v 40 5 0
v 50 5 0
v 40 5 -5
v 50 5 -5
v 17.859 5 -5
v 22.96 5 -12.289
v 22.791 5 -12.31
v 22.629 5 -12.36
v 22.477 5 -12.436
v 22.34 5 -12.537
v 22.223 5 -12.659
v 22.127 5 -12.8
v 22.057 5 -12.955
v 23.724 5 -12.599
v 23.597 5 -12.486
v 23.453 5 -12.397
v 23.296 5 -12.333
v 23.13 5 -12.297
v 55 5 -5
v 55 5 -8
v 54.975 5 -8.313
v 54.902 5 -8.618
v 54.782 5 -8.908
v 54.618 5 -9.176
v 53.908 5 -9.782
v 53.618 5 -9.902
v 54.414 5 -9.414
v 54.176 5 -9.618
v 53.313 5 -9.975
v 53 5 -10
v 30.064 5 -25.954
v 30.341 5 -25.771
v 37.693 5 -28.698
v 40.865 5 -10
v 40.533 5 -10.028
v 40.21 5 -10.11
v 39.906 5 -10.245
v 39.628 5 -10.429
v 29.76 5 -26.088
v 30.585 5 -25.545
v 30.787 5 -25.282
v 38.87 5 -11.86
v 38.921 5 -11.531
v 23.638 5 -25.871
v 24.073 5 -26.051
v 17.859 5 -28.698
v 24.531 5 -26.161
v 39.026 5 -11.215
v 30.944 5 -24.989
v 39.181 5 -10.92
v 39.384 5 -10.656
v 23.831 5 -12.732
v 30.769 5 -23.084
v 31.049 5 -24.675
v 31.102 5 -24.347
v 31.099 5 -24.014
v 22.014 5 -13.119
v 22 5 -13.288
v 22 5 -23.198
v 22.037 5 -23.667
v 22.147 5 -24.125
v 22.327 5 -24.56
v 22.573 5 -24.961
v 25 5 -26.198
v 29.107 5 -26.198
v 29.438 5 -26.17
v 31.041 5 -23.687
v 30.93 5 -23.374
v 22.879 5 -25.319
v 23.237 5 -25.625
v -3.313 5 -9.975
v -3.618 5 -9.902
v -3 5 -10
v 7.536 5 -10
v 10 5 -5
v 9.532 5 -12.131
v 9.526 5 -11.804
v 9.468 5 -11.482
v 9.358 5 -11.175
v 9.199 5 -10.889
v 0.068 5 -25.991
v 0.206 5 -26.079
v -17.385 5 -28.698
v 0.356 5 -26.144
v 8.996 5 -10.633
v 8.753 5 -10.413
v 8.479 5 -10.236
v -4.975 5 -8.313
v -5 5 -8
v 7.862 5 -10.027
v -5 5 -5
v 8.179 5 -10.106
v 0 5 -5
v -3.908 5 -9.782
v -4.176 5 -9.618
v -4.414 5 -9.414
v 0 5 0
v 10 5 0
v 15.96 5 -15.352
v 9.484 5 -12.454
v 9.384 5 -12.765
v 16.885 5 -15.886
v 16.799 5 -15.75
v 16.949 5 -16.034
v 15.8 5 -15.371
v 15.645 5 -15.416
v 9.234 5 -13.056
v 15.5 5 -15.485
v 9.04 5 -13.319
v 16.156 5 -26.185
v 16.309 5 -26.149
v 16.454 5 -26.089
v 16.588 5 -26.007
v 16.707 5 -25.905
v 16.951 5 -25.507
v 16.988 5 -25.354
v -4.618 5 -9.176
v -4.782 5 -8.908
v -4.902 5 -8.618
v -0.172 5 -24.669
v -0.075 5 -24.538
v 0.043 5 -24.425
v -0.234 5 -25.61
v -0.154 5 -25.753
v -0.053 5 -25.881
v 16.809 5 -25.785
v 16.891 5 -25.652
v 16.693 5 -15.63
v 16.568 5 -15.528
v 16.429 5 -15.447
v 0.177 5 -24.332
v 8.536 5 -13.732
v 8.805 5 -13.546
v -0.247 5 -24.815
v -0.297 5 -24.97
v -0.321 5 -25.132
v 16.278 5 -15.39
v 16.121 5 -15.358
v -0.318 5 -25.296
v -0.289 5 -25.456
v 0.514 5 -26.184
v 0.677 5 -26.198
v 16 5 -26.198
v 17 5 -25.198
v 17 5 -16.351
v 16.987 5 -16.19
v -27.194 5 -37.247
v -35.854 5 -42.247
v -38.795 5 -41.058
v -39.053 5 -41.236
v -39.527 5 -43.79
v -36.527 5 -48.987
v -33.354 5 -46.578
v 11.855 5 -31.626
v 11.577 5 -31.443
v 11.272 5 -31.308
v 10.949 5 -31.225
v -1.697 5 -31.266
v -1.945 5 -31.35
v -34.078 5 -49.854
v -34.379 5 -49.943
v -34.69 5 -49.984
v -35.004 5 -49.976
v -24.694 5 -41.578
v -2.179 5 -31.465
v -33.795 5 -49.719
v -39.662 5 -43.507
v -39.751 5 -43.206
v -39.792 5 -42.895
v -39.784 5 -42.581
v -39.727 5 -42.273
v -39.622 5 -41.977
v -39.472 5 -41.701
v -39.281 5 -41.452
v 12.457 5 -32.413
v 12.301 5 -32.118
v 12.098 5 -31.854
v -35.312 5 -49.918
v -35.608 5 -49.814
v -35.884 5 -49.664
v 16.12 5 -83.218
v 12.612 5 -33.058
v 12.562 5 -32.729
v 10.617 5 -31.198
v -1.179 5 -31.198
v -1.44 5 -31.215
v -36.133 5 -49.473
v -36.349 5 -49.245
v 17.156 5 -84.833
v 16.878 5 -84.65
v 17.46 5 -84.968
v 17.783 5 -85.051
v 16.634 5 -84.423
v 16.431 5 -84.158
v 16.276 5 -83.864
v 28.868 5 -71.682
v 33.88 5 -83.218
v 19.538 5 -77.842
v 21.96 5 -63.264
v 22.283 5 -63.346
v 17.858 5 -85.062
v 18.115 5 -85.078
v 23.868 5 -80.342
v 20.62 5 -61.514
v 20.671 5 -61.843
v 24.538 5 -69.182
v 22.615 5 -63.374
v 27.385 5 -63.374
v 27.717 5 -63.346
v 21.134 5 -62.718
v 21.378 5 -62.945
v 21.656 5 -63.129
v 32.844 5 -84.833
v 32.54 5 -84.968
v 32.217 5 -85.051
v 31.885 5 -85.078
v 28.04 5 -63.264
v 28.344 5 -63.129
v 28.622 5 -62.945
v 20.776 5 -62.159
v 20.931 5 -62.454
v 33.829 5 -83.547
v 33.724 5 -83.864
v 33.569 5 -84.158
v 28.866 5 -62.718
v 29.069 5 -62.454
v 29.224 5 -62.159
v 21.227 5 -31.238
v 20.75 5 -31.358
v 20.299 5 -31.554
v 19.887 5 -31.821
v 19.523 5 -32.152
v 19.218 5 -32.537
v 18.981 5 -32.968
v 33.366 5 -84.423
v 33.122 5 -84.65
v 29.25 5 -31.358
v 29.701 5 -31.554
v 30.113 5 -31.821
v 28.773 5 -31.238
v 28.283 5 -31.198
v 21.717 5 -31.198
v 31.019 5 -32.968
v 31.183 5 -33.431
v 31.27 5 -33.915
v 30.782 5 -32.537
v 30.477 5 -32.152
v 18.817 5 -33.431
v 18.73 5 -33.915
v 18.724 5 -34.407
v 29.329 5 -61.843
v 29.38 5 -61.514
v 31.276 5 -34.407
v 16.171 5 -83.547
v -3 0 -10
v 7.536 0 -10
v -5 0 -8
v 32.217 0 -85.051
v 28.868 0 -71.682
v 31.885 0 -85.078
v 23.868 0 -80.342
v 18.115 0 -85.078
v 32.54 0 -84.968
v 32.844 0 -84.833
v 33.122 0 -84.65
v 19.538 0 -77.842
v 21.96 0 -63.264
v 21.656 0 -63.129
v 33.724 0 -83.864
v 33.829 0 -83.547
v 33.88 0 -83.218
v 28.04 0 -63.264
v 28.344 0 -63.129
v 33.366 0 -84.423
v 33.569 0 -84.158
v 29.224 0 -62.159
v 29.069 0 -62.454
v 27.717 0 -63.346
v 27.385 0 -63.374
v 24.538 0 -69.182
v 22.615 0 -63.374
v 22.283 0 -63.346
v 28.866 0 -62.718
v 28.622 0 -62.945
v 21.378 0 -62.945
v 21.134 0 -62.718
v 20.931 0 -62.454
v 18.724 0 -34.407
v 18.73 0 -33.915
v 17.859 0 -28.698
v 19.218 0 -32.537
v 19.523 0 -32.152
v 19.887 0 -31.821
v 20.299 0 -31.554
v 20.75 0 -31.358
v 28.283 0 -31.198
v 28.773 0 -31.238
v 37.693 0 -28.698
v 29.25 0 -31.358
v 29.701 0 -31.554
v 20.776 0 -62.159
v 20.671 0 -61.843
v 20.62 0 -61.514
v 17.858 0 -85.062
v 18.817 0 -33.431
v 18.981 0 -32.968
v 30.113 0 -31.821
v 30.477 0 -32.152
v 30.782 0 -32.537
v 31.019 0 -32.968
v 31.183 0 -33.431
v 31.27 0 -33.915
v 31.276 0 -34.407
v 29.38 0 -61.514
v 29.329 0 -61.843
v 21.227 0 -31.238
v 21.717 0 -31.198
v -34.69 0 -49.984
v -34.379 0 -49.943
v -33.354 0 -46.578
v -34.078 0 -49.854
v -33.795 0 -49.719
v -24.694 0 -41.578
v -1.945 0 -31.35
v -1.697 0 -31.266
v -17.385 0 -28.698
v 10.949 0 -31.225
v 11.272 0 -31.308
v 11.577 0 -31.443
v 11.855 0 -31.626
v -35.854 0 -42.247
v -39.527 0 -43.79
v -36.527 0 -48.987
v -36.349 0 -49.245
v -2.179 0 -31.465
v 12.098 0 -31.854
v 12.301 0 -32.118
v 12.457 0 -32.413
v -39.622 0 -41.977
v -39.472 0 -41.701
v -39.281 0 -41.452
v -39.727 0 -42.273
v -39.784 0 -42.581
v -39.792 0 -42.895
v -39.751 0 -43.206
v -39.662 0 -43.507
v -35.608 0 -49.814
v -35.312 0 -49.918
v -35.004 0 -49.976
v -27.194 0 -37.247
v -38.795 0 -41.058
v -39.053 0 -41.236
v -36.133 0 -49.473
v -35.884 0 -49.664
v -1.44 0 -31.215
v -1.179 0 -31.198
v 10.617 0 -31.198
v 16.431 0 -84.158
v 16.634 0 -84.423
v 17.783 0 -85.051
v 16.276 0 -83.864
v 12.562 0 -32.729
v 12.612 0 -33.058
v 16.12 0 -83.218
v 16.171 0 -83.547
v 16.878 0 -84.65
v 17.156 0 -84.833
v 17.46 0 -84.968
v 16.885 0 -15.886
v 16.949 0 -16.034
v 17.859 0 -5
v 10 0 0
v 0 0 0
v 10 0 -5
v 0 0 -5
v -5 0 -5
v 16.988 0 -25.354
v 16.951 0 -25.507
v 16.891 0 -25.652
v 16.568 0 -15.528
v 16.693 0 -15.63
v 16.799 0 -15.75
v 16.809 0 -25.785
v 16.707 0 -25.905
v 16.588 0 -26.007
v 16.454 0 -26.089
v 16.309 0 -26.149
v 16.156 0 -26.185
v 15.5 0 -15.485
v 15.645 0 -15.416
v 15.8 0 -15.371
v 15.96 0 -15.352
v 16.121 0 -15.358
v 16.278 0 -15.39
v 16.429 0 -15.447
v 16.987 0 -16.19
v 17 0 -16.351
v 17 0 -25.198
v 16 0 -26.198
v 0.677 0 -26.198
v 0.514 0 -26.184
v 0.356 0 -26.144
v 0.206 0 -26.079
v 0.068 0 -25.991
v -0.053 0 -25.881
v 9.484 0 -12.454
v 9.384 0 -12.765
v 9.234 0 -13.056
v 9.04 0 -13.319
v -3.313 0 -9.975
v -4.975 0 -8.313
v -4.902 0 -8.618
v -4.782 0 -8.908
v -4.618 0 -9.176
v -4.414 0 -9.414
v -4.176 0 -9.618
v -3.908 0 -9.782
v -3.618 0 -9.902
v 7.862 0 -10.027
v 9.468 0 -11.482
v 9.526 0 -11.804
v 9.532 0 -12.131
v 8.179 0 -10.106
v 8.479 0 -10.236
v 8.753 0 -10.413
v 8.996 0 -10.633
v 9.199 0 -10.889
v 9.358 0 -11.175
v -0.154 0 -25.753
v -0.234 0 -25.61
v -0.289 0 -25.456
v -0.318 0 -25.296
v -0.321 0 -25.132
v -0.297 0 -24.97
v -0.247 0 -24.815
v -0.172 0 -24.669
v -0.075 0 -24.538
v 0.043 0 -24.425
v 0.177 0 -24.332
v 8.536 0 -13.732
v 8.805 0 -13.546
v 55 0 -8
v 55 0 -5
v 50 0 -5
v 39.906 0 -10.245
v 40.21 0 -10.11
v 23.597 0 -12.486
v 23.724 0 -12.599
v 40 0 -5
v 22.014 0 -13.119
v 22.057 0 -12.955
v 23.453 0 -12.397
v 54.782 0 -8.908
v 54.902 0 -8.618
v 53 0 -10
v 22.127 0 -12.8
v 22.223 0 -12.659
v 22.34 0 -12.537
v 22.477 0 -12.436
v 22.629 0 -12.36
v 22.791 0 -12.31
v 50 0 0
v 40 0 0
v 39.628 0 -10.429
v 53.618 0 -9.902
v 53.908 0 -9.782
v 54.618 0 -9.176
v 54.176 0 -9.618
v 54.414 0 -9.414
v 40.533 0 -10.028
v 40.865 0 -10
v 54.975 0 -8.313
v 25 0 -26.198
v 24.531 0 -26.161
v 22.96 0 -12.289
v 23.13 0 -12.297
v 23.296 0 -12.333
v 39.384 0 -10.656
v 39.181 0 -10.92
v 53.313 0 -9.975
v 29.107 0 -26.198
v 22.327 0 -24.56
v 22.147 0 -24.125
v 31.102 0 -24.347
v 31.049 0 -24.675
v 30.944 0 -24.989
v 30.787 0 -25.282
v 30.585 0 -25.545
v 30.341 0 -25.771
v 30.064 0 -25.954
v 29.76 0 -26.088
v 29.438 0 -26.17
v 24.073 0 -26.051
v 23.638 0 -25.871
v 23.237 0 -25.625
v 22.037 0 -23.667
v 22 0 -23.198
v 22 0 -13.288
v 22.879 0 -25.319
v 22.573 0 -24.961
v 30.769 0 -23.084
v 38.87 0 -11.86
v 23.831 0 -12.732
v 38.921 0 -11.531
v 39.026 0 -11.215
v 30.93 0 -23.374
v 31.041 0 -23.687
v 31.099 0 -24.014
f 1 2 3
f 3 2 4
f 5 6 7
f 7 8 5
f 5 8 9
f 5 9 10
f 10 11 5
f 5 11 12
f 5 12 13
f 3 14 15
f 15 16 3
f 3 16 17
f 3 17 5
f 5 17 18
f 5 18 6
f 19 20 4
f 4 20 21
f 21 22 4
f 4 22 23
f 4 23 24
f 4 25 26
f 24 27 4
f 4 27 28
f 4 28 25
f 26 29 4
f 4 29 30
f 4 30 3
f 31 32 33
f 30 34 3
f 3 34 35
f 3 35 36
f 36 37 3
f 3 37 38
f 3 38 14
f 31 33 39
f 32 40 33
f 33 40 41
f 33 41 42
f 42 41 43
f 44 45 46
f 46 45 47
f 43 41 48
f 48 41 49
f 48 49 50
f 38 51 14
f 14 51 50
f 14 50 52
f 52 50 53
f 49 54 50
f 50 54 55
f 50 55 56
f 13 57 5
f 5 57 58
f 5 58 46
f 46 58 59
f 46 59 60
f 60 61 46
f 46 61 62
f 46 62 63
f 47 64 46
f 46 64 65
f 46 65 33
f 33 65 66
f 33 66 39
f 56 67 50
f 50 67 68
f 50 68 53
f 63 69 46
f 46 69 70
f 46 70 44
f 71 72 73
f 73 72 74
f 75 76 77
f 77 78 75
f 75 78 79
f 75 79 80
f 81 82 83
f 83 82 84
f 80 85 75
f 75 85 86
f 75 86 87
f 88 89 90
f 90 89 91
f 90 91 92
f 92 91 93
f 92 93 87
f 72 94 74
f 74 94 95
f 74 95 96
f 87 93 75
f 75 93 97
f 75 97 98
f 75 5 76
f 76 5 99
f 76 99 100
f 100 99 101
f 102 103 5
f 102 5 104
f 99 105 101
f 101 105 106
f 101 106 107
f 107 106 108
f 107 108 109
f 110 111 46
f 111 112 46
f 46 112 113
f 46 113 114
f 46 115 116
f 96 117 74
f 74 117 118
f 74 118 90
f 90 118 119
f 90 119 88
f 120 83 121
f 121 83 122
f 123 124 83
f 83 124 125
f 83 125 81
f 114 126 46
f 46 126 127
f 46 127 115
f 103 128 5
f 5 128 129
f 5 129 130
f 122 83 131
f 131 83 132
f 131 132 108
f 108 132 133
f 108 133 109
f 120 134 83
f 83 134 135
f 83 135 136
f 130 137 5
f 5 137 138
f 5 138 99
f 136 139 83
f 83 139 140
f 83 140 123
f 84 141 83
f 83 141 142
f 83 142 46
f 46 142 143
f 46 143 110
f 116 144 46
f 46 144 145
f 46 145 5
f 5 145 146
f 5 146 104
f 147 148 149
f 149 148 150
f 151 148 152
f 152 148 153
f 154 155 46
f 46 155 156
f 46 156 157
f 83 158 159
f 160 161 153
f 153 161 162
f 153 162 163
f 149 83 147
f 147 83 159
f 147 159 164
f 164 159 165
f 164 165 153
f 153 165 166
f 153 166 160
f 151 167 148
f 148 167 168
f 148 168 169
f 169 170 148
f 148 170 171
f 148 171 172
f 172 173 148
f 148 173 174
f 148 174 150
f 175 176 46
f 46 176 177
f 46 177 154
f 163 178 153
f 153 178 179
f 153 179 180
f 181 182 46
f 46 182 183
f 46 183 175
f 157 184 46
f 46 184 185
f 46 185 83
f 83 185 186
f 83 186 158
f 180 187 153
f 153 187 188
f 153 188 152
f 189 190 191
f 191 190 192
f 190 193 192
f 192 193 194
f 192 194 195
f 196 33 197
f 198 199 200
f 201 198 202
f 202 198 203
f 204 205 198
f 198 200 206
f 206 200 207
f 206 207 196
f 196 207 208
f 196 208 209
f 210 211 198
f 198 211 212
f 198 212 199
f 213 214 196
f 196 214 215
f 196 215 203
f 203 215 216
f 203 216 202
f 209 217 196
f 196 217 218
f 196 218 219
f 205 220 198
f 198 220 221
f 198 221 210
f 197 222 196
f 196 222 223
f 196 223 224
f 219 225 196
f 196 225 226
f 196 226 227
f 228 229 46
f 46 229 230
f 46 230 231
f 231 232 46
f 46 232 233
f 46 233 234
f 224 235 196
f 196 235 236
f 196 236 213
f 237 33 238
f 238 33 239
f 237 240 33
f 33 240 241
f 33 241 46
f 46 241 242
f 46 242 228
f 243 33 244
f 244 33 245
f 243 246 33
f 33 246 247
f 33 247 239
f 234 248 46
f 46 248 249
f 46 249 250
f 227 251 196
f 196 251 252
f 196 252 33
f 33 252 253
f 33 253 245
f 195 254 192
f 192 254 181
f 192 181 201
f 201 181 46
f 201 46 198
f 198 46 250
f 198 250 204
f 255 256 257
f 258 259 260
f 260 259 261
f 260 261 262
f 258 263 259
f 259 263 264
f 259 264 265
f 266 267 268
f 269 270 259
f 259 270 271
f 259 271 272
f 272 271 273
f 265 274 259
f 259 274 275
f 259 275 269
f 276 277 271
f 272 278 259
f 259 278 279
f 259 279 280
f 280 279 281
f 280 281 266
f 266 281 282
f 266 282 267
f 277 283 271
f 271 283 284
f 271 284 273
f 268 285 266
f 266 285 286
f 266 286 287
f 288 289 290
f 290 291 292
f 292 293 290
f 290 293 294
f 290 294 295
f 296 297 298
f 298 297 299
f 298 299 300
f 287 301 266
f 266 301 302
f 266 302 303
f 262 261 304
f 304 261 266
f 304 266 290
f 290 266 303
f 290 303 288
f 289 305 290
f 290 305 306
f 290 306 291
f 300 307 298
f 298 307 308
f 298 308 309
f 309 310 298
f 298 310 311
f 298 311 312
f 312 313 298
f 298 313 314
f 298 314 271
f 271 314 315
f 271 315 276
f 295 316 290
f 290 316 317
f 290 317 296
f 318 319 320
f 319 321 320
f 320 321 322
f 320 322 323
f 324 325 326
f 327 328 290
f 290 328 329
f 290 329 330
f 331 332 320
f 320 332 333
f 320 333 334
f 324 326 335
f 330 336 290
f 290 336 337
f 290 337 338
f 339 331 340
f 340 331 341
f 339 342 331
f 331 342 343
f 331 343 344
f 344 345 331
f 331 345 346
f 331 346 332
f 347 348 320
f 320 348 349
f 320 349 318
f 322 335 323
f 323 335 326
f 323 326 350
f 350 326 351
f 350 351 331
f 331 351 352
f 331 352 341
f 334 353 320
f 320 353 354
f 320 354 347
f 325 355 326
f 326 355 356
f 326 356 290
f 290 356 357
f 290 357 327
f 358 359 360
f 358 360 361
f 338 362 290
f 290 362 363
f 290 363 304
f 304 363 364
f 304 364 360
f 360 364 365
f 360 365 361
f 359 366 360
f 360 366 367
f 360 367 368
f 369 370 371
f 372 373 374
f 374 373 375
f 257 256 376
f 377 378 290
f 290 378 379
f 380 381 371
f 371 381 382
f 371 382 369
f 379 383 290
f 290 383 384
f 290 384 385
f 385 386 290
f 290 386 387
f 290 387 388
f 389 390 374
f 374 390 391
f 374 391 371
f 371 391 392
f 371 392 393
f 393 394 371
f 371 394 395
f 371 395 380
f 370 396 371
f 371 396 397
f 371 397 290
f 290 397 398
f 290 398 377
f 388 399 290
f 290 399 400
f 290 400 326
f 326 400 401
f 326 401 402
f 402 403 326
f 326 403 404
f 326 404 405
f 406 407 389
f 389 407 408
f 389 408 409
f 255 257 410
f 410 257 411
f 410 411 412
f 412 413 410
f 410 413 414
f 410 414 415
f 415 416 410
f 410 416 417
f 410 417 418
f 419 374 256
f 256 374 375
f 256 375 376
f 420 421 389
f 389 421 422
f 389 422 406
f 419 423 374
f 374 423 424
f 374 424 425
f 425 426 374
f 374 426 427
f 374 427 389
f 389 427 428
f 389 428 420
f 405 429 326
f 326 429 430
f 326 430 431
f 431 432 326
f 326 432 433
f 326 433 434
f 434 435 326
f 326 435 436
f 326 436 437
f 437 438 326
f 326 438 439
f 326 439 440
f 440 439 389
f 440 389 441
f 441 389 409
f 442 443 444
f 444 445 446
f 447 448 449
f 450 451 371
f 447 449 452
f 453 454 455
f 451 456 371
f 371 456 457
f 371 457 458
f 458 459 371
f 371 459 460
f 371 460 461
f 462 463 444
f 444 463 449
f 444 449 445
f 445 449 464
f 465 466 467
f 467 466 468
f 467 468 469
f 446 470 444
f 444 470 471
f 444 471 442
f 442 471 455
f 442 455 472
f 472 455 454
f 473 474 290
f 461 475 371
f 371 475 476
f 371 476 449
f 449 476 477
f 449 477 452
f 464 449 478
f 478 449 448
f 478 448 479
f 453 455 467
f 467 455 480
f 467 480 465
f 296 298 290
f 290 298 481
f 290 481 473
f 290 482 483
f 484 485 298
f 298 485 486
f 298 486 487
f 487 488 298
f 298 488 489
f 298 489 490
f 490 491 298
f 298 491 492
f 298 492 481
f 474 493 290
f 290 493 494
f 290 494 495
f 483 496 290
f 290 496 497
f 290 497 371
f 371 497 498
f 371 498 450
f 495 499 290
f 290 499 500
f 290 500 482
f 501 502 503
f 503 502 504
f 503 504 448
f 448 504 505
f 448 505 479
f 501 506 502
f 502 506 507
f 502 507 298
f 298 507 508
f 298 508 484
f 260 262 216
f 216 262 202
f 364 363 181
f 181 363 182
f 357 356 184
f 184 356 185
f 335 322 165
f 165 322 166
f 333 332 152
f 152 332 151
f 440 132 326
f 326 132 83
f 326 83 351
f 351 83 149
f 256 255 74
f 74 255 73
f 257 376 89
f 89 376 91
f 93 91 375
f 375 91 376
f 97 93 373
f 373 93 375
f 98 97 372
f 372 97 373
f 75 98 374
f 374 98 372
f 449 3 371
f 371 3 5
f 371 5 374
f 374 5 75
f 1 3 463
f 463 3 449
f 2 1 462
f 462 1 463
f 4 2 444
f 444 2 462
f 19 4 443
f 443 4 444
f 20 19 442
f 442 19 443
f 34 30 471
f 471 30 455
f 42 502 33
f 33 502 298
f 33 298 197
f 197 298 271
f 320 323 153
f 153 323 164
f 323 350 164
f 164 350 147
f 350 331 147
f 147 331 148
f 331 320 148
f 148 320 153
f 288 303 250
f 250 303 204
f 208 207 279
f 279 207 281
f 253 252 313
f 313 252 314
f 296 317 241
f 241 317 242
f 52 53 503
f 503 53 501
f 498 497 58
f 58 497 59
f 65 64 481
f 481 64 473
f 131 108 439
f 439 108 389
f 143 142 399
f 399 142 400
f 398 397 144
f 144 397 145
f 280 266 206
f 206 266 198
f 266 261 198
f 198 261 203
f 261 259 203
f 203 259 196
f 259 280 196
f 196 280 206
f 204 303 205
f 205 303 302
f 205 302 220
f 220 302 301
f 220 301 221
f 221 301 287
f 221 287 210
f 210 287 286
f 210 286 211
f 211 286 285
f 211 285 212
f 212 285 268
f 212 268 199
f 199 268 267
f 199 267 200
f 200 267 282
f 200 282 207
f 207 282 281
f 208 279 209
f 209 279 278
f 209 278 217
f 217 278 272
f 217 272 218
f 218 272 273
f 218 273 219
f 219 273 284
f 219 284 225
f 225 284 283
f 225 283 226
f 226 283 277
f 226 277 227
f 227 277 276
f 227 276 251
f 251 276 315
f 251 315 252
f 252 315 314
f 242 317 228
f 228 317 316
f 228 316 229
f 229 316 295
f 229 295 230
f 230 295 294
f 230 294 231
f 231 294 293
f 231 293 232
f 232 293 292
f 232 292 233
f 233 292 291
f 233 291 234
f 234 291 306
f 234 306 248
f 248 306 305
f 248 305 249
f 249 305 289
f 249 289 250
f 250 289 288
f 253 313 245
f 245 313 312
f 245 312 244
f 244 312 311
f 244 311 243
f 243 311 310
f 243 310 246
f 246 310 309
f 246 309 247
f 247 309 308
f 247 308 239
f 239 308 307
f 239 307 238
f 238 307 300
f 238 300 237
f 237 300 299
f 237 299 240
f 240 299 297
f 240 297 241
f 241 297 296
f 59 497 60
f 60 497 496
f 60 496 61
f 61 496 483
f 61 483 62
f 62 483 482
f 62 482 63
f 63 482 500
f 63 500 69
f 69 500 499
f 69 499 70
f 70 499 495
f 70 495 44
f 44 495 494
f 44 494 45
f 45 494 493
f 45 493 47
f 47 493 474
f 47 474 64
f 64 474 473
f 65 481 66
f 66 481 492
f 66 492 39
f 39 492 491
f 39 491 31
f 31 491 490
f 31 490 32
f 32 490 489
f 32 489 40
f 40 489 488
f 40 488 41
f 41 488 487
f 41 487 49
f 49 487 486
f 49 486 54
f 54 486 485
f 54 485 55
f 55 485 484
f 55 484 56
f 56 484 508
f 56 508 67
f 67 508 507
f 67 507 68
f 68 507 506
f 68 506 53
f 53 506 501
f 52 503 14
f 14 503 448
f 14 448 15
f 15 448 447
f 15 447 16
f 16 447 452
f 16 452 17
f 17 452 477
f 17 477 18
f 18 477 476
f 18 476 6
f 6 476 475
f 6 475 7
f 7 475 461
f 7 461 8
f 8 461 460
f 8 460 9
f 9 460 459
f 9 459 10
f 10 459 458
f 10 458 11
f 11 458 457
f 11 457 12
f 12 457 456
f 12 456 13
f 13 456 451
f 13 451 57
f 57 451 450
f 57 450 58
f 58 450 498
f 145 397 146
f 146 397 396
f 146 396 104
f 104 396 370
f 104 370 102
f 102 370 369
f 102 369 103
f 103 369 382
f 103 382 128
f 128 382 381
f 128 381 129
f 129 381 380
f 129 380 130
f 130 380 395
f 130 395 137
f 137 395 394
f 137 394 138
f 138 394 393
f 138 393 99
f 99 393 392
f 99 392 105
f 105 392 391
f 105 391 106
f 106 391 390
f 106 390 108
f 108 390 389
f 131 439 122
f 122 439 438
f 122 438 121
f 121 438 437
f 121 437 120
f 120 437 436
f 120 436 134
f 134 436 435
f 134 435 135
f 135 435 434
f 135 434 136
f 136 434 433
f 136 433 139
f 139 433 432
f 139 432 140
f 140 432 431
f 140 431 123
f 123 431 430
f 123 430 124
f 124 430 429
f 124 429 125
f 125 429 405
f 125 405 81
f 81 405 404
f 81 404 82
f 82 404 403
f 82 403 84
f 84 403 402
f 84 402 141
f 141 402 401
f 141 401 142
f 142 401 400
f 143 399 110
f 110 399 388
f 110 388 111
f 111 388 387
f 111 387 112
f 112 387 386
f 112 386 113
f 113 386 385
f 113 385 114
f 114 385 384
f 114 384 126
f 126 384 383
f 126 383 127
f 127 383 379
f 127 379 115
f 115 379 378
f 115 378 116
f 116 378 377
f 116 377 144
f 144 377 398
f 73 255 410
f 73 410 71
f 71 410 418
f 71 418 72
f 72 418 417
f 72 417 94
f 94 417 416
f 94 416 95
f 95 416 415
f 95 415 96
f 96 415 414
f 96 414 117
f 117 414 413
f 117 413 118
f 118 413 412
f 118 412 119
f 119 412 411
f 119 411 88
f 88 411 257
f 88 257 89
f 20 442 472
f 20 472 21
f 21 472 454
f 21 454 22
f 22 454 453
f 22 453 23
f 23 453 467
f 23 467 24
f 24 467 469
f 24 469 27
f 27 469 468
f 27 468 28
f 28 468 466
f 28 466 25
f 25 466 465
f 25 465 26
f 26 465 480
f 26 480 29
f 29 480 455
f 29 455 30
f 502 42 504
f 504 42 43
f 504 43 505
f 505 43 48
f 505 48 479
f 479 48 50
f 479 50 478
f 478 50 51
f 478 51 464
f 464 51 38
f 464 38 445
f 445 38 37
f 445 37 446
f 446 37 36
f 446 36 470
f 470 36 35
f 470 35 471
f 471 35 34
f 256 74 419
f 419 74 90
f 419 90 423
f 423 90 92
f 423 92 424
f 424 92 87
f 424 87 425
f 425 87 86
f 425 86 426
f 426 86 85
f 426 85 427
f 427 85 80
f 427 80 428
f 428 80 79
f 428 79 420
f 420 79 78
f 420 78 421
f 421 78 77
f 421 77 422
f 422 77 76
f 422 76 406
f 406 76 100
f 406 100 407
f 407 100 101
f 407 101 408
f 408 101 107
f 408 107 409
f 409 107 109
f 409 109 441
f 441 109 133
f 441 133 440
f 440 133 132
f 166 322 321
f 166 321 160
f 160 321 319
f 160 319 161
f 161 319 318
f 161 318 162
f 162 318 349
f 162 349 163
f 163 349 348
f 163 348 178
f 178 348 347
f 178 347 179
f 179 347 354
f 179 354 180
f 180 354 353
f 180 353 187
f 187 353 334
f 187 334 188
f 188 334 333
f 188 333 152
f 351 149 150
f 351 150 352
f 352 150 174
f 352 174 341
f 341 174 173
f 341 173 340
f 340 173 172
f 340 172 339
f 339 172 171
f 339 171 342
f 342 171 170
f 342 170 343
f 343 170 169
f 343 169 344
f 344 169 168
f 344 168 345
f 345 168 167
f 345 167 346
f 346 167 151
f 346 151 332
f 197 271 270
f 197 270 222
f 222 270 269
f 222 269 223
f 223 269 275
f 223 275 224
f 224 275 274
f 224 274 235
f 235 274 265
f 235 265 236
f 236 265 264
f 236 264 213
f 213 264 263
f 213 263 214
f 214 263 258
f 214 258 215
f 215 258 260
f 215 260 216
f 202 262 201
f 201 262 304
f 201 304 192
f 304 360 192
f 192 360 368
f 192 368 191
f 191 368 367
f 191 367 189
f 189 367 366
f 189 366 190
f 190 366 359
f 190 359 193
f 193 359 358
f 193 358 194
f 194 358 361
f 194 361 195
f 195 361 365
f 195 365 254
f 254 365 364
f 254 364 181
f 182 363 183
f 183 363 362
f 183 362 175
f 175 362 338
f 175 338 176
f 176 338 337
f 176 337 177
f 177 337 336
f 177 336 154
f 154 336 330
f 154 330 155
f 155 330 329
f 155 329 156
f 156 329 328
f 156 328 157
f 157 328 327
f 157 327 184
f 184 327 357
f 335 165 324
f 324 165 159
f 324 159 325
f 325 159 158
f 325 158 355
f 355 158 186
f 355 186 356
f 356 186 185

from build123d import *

# Parameters (mm, degrees)
EXTRUDE_1_DEPTH     = 5
CUT_EXTRUDE_1_DEPTH = 6
FILLET_1_R          = 2
FILLET_2_R          = 2
FILLET_3_R          = 3
FILLET_4_R          = 3
FILLET_5_R          = 3
FILLET_6_R          = 2
FILLET_7_R          = 1
FILLET_8_R          = 1
FILLET_9_R          = 1
FILLET_10_R         = 1
FILLET_11_R         = 2
FILLET_12_R         = 2
FILLET_13_R         = 2
FILLET_14_R         = 2
FILLET_15_R         = 2
FILLET_16_R         = 2


with BuildPart() as part:
    # 草图1 → 凸台-拉伸1 (new body)
    with BuildSketch(Plane(origin=(0, 0, 0), x_dir=(1, 0, 0), z_dir=(0, 1, 0))):
        Polygon((-5, 5), (0, 5), (0, 0), (10, 0), (10, 5), (40, 5), (40, 0), (50, 0), (50, 5), (55, 5), (55, 10), (39, 10), (33.75, 85.078497848), (16.25, 85.078497848), (12.482276941, 31.197547838), (-1.715229851, 31.197547838), (-35.526844906, 50.718692892), (-40.526844906, 42.058438854), (15, 10), (-5, 10), align=None)
    extrude(amount=EXTRUDE_1_DEPTH)

    # 草图2 → 切除-拉伸1 (cut, through all)
    with BuildSketch(Plane(origin=(0, 5, 0), x_dir=(1, 0, 0), z_dir=(0, 1, 0))):
        Polygon((-35.854277493, 42.247482146), (-27.194023456, 37.247482146), (-24.694023456, 41.577609165), (-33.354277493, 46.577609165), align=None)
        Polygon((28.868403571, 71.682200114), (23.868403571, 80.342454152), (19.538276552, 77.842454152), (24.538276552, 69.182200114), align=None)
        Polygon((-3.054975814, 26.197547838), (17, 26.197547838), (17, 14.618802154), align=None)
        Polygon((20.75, 63.374046916), (29.25, 63.374046916), (31.5, 31.197547838), (18.5, 31.197547838), align=None)
        Polygon((22, 26.197547838), (22, 10), (32.855147628, 26.197547838), align=None)
    extrude(amount=-CUT_EXTRUDE_1_DEPTH, mode=Mode.SUBTRACT)

    # 圆角1
    fillet_1_edges = [part.edges().sort_by_distance(p)[0] for p in [
        (20.75, 2.5, -63.374046916),
    ]]
    fillet(fillet_1_edges, radius=FILLET_1_R)

    # 圆角2
    fillet_2_edges = [part.edges().sort_by_distance(p)[0] for p in [
        (29.25, 2.5, -63.374046916),
    ]]
    fillet(fillet_2_edges, radius=FILLET_2_R)

    # 圆角3
    fillet_3_edges = [part.edges().sort_by_distance(p)[0] for p in [
        (18.5, 2.5, -31.197547838),
    ]]
    fillet(fillet_3_edges, radius=FILLET_3_R)

    # 圆角4
    fillet_4_edges = [part.edges().sort_by_distance(p)[0] for p in [
        (31.5, 2.5, -31.197547838),
    ]]
    fillet(fillet_4_edges, radius=FILLET_4_R)

    # 圆角5
    fillet_5_edges = [part.edges().sort_by_distance(p)[0] for p in [
        (22, 2.5, -26.197547838),
    ]]
    fillet(fillet_5_edges, radius=FILLET_5_R)

    # 圆角6
    fillet_6_edges = [part.edges().sort_by_distance(p)[0] for p in [
        (32.855147628, 2.5, -26.197547838),
    ]]
    fillet(fillet_6_edges, radius=FILLET_6_R)

    # 圆角7
    fillet_7_edges = [part.edges().sort_by_distance(p)[0] for p in [
        (22, 2.5, -10),
    ]]
    fillet(fillet_7_edges, radius=FILLET_7_R)

    # 圆角8
    fillet_8_edges = [part.edges().sort_by_distance(p)[0] for p in [
        (17, 2.5, -14.618802154),
    ]]
    fillet(fillet_8_edges, radius=FILLET_8_R)

    # 圆角9
    fillet_9_edges = [part.edges().sort_by_distance(p)[0] for p in [
        (-3.054975814, 2.5, -26.197547838),
    ]]
    fillet(fillet_9_edges, radius=FILLET_9_R)

    # 圆角10
    fillet_10_edges = [part.edges().sort_by_distance(p)[0] for p in [
        (17, 2.5, -26.197547838),
    ]]
    fillet(fillet_10_edges, radius=FILLET_10_R)

    # 圆角11
    fillet_11_edges = [part.edges().sort_by_distance(p)[0] for p in [
        (-5, 2.5, -10),
    ]]
    fillet(fillet_11_edges, radius=FILLET_11_R)

    # 圆角12
    fillet_12_edges = [part.edges().sort_by_distance(p)[0] for p in [
        (55, 2.5, -10),
    ]]
    fillet(fillet_12_edges, radius=FILLET_12_R)

    # 圆角13
    fillet_13_edges = [part.edges().sort_by_distance(p)[0] for p in [
        (39, 2.5, -10),
    ]]
    fillet(fillet_13_edges, radius=FILLET_13_R)

    # 圆角14
    fillet_14_edges = [part.edges().sort_by_distance(p)[0] for p in [
        (15, 2.5, -10),
    ]]
    fillet(fillet_14_edges, radius=FILLET_14_R)

    # 圆角15
    fillet_15_edges = [part.edges().sort_by_distance(p)[0] for p in [
        (-40.526844906, 2.5, -42.058438854),
        (-35.526844906, 2.5, -50.718692892),
    ]]
    fillet(fillet_15_edges, radius=FILLET_15_R)

    # 圆角16
    fillet_16_edges = [part.edges().sort_by_distance(p)[0] for p in [
        (33.75, 2.5, -85.078497848),
        (-1.715229851, 2.5, -31.197547838),
        (12.482276941, 2.5, -31.197547838),
        (16.25, 2.5, -85.078497848),
    ]]
    fillet(fillet_16_edges, radius=FILLET_16_R)


solid = part.part
